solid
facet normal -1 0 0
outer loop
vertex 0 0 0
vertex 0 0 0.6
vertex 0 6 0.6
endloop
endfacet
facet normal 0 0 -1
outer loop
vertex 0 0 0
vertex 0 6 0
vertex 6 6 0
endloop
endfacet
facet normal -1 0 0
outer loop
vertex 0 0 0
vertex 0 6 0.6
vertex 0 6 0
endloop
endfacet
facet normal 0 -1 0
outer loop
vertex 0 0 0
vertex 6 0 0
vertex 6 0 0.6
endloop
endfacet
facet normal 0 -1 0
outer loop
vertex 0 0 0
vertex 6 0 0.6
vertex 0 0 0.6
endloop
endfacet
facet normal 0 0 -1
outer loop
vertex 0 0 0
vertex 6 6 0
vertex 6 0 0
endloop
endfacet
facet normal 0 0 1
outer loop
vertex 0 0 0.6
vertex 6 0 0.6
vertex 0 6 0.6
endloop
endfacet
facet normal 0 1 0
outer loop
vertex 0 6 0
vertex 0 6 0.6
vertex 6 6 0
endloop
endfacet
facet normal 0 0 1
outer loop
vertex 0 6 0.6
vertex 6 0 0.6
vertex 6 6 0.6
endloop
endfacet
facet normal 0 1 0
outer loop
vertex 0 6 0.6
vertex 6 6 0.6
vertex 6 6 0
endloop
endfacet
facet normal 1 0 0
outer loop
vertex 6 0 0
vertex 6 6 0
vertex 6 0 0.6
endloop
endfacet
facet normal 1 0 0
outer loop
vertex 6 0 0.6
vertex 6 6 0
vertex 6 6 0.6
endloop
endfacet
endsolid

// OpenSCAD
/* Warning, this is a very basic generator with a lot of approximation 
input data : [UFBGA, BZB, 6x6x0.6mm, 64, , A, C04-21162A]
generated by com.zoubworld.electronics.cad.model3d.Basic
Date : Sun Feb 15 10:50:49 CET 2026
*/

//body
color("black")
translate([0,0,0])
cube([6.0,6.0,0.6], center=false);
